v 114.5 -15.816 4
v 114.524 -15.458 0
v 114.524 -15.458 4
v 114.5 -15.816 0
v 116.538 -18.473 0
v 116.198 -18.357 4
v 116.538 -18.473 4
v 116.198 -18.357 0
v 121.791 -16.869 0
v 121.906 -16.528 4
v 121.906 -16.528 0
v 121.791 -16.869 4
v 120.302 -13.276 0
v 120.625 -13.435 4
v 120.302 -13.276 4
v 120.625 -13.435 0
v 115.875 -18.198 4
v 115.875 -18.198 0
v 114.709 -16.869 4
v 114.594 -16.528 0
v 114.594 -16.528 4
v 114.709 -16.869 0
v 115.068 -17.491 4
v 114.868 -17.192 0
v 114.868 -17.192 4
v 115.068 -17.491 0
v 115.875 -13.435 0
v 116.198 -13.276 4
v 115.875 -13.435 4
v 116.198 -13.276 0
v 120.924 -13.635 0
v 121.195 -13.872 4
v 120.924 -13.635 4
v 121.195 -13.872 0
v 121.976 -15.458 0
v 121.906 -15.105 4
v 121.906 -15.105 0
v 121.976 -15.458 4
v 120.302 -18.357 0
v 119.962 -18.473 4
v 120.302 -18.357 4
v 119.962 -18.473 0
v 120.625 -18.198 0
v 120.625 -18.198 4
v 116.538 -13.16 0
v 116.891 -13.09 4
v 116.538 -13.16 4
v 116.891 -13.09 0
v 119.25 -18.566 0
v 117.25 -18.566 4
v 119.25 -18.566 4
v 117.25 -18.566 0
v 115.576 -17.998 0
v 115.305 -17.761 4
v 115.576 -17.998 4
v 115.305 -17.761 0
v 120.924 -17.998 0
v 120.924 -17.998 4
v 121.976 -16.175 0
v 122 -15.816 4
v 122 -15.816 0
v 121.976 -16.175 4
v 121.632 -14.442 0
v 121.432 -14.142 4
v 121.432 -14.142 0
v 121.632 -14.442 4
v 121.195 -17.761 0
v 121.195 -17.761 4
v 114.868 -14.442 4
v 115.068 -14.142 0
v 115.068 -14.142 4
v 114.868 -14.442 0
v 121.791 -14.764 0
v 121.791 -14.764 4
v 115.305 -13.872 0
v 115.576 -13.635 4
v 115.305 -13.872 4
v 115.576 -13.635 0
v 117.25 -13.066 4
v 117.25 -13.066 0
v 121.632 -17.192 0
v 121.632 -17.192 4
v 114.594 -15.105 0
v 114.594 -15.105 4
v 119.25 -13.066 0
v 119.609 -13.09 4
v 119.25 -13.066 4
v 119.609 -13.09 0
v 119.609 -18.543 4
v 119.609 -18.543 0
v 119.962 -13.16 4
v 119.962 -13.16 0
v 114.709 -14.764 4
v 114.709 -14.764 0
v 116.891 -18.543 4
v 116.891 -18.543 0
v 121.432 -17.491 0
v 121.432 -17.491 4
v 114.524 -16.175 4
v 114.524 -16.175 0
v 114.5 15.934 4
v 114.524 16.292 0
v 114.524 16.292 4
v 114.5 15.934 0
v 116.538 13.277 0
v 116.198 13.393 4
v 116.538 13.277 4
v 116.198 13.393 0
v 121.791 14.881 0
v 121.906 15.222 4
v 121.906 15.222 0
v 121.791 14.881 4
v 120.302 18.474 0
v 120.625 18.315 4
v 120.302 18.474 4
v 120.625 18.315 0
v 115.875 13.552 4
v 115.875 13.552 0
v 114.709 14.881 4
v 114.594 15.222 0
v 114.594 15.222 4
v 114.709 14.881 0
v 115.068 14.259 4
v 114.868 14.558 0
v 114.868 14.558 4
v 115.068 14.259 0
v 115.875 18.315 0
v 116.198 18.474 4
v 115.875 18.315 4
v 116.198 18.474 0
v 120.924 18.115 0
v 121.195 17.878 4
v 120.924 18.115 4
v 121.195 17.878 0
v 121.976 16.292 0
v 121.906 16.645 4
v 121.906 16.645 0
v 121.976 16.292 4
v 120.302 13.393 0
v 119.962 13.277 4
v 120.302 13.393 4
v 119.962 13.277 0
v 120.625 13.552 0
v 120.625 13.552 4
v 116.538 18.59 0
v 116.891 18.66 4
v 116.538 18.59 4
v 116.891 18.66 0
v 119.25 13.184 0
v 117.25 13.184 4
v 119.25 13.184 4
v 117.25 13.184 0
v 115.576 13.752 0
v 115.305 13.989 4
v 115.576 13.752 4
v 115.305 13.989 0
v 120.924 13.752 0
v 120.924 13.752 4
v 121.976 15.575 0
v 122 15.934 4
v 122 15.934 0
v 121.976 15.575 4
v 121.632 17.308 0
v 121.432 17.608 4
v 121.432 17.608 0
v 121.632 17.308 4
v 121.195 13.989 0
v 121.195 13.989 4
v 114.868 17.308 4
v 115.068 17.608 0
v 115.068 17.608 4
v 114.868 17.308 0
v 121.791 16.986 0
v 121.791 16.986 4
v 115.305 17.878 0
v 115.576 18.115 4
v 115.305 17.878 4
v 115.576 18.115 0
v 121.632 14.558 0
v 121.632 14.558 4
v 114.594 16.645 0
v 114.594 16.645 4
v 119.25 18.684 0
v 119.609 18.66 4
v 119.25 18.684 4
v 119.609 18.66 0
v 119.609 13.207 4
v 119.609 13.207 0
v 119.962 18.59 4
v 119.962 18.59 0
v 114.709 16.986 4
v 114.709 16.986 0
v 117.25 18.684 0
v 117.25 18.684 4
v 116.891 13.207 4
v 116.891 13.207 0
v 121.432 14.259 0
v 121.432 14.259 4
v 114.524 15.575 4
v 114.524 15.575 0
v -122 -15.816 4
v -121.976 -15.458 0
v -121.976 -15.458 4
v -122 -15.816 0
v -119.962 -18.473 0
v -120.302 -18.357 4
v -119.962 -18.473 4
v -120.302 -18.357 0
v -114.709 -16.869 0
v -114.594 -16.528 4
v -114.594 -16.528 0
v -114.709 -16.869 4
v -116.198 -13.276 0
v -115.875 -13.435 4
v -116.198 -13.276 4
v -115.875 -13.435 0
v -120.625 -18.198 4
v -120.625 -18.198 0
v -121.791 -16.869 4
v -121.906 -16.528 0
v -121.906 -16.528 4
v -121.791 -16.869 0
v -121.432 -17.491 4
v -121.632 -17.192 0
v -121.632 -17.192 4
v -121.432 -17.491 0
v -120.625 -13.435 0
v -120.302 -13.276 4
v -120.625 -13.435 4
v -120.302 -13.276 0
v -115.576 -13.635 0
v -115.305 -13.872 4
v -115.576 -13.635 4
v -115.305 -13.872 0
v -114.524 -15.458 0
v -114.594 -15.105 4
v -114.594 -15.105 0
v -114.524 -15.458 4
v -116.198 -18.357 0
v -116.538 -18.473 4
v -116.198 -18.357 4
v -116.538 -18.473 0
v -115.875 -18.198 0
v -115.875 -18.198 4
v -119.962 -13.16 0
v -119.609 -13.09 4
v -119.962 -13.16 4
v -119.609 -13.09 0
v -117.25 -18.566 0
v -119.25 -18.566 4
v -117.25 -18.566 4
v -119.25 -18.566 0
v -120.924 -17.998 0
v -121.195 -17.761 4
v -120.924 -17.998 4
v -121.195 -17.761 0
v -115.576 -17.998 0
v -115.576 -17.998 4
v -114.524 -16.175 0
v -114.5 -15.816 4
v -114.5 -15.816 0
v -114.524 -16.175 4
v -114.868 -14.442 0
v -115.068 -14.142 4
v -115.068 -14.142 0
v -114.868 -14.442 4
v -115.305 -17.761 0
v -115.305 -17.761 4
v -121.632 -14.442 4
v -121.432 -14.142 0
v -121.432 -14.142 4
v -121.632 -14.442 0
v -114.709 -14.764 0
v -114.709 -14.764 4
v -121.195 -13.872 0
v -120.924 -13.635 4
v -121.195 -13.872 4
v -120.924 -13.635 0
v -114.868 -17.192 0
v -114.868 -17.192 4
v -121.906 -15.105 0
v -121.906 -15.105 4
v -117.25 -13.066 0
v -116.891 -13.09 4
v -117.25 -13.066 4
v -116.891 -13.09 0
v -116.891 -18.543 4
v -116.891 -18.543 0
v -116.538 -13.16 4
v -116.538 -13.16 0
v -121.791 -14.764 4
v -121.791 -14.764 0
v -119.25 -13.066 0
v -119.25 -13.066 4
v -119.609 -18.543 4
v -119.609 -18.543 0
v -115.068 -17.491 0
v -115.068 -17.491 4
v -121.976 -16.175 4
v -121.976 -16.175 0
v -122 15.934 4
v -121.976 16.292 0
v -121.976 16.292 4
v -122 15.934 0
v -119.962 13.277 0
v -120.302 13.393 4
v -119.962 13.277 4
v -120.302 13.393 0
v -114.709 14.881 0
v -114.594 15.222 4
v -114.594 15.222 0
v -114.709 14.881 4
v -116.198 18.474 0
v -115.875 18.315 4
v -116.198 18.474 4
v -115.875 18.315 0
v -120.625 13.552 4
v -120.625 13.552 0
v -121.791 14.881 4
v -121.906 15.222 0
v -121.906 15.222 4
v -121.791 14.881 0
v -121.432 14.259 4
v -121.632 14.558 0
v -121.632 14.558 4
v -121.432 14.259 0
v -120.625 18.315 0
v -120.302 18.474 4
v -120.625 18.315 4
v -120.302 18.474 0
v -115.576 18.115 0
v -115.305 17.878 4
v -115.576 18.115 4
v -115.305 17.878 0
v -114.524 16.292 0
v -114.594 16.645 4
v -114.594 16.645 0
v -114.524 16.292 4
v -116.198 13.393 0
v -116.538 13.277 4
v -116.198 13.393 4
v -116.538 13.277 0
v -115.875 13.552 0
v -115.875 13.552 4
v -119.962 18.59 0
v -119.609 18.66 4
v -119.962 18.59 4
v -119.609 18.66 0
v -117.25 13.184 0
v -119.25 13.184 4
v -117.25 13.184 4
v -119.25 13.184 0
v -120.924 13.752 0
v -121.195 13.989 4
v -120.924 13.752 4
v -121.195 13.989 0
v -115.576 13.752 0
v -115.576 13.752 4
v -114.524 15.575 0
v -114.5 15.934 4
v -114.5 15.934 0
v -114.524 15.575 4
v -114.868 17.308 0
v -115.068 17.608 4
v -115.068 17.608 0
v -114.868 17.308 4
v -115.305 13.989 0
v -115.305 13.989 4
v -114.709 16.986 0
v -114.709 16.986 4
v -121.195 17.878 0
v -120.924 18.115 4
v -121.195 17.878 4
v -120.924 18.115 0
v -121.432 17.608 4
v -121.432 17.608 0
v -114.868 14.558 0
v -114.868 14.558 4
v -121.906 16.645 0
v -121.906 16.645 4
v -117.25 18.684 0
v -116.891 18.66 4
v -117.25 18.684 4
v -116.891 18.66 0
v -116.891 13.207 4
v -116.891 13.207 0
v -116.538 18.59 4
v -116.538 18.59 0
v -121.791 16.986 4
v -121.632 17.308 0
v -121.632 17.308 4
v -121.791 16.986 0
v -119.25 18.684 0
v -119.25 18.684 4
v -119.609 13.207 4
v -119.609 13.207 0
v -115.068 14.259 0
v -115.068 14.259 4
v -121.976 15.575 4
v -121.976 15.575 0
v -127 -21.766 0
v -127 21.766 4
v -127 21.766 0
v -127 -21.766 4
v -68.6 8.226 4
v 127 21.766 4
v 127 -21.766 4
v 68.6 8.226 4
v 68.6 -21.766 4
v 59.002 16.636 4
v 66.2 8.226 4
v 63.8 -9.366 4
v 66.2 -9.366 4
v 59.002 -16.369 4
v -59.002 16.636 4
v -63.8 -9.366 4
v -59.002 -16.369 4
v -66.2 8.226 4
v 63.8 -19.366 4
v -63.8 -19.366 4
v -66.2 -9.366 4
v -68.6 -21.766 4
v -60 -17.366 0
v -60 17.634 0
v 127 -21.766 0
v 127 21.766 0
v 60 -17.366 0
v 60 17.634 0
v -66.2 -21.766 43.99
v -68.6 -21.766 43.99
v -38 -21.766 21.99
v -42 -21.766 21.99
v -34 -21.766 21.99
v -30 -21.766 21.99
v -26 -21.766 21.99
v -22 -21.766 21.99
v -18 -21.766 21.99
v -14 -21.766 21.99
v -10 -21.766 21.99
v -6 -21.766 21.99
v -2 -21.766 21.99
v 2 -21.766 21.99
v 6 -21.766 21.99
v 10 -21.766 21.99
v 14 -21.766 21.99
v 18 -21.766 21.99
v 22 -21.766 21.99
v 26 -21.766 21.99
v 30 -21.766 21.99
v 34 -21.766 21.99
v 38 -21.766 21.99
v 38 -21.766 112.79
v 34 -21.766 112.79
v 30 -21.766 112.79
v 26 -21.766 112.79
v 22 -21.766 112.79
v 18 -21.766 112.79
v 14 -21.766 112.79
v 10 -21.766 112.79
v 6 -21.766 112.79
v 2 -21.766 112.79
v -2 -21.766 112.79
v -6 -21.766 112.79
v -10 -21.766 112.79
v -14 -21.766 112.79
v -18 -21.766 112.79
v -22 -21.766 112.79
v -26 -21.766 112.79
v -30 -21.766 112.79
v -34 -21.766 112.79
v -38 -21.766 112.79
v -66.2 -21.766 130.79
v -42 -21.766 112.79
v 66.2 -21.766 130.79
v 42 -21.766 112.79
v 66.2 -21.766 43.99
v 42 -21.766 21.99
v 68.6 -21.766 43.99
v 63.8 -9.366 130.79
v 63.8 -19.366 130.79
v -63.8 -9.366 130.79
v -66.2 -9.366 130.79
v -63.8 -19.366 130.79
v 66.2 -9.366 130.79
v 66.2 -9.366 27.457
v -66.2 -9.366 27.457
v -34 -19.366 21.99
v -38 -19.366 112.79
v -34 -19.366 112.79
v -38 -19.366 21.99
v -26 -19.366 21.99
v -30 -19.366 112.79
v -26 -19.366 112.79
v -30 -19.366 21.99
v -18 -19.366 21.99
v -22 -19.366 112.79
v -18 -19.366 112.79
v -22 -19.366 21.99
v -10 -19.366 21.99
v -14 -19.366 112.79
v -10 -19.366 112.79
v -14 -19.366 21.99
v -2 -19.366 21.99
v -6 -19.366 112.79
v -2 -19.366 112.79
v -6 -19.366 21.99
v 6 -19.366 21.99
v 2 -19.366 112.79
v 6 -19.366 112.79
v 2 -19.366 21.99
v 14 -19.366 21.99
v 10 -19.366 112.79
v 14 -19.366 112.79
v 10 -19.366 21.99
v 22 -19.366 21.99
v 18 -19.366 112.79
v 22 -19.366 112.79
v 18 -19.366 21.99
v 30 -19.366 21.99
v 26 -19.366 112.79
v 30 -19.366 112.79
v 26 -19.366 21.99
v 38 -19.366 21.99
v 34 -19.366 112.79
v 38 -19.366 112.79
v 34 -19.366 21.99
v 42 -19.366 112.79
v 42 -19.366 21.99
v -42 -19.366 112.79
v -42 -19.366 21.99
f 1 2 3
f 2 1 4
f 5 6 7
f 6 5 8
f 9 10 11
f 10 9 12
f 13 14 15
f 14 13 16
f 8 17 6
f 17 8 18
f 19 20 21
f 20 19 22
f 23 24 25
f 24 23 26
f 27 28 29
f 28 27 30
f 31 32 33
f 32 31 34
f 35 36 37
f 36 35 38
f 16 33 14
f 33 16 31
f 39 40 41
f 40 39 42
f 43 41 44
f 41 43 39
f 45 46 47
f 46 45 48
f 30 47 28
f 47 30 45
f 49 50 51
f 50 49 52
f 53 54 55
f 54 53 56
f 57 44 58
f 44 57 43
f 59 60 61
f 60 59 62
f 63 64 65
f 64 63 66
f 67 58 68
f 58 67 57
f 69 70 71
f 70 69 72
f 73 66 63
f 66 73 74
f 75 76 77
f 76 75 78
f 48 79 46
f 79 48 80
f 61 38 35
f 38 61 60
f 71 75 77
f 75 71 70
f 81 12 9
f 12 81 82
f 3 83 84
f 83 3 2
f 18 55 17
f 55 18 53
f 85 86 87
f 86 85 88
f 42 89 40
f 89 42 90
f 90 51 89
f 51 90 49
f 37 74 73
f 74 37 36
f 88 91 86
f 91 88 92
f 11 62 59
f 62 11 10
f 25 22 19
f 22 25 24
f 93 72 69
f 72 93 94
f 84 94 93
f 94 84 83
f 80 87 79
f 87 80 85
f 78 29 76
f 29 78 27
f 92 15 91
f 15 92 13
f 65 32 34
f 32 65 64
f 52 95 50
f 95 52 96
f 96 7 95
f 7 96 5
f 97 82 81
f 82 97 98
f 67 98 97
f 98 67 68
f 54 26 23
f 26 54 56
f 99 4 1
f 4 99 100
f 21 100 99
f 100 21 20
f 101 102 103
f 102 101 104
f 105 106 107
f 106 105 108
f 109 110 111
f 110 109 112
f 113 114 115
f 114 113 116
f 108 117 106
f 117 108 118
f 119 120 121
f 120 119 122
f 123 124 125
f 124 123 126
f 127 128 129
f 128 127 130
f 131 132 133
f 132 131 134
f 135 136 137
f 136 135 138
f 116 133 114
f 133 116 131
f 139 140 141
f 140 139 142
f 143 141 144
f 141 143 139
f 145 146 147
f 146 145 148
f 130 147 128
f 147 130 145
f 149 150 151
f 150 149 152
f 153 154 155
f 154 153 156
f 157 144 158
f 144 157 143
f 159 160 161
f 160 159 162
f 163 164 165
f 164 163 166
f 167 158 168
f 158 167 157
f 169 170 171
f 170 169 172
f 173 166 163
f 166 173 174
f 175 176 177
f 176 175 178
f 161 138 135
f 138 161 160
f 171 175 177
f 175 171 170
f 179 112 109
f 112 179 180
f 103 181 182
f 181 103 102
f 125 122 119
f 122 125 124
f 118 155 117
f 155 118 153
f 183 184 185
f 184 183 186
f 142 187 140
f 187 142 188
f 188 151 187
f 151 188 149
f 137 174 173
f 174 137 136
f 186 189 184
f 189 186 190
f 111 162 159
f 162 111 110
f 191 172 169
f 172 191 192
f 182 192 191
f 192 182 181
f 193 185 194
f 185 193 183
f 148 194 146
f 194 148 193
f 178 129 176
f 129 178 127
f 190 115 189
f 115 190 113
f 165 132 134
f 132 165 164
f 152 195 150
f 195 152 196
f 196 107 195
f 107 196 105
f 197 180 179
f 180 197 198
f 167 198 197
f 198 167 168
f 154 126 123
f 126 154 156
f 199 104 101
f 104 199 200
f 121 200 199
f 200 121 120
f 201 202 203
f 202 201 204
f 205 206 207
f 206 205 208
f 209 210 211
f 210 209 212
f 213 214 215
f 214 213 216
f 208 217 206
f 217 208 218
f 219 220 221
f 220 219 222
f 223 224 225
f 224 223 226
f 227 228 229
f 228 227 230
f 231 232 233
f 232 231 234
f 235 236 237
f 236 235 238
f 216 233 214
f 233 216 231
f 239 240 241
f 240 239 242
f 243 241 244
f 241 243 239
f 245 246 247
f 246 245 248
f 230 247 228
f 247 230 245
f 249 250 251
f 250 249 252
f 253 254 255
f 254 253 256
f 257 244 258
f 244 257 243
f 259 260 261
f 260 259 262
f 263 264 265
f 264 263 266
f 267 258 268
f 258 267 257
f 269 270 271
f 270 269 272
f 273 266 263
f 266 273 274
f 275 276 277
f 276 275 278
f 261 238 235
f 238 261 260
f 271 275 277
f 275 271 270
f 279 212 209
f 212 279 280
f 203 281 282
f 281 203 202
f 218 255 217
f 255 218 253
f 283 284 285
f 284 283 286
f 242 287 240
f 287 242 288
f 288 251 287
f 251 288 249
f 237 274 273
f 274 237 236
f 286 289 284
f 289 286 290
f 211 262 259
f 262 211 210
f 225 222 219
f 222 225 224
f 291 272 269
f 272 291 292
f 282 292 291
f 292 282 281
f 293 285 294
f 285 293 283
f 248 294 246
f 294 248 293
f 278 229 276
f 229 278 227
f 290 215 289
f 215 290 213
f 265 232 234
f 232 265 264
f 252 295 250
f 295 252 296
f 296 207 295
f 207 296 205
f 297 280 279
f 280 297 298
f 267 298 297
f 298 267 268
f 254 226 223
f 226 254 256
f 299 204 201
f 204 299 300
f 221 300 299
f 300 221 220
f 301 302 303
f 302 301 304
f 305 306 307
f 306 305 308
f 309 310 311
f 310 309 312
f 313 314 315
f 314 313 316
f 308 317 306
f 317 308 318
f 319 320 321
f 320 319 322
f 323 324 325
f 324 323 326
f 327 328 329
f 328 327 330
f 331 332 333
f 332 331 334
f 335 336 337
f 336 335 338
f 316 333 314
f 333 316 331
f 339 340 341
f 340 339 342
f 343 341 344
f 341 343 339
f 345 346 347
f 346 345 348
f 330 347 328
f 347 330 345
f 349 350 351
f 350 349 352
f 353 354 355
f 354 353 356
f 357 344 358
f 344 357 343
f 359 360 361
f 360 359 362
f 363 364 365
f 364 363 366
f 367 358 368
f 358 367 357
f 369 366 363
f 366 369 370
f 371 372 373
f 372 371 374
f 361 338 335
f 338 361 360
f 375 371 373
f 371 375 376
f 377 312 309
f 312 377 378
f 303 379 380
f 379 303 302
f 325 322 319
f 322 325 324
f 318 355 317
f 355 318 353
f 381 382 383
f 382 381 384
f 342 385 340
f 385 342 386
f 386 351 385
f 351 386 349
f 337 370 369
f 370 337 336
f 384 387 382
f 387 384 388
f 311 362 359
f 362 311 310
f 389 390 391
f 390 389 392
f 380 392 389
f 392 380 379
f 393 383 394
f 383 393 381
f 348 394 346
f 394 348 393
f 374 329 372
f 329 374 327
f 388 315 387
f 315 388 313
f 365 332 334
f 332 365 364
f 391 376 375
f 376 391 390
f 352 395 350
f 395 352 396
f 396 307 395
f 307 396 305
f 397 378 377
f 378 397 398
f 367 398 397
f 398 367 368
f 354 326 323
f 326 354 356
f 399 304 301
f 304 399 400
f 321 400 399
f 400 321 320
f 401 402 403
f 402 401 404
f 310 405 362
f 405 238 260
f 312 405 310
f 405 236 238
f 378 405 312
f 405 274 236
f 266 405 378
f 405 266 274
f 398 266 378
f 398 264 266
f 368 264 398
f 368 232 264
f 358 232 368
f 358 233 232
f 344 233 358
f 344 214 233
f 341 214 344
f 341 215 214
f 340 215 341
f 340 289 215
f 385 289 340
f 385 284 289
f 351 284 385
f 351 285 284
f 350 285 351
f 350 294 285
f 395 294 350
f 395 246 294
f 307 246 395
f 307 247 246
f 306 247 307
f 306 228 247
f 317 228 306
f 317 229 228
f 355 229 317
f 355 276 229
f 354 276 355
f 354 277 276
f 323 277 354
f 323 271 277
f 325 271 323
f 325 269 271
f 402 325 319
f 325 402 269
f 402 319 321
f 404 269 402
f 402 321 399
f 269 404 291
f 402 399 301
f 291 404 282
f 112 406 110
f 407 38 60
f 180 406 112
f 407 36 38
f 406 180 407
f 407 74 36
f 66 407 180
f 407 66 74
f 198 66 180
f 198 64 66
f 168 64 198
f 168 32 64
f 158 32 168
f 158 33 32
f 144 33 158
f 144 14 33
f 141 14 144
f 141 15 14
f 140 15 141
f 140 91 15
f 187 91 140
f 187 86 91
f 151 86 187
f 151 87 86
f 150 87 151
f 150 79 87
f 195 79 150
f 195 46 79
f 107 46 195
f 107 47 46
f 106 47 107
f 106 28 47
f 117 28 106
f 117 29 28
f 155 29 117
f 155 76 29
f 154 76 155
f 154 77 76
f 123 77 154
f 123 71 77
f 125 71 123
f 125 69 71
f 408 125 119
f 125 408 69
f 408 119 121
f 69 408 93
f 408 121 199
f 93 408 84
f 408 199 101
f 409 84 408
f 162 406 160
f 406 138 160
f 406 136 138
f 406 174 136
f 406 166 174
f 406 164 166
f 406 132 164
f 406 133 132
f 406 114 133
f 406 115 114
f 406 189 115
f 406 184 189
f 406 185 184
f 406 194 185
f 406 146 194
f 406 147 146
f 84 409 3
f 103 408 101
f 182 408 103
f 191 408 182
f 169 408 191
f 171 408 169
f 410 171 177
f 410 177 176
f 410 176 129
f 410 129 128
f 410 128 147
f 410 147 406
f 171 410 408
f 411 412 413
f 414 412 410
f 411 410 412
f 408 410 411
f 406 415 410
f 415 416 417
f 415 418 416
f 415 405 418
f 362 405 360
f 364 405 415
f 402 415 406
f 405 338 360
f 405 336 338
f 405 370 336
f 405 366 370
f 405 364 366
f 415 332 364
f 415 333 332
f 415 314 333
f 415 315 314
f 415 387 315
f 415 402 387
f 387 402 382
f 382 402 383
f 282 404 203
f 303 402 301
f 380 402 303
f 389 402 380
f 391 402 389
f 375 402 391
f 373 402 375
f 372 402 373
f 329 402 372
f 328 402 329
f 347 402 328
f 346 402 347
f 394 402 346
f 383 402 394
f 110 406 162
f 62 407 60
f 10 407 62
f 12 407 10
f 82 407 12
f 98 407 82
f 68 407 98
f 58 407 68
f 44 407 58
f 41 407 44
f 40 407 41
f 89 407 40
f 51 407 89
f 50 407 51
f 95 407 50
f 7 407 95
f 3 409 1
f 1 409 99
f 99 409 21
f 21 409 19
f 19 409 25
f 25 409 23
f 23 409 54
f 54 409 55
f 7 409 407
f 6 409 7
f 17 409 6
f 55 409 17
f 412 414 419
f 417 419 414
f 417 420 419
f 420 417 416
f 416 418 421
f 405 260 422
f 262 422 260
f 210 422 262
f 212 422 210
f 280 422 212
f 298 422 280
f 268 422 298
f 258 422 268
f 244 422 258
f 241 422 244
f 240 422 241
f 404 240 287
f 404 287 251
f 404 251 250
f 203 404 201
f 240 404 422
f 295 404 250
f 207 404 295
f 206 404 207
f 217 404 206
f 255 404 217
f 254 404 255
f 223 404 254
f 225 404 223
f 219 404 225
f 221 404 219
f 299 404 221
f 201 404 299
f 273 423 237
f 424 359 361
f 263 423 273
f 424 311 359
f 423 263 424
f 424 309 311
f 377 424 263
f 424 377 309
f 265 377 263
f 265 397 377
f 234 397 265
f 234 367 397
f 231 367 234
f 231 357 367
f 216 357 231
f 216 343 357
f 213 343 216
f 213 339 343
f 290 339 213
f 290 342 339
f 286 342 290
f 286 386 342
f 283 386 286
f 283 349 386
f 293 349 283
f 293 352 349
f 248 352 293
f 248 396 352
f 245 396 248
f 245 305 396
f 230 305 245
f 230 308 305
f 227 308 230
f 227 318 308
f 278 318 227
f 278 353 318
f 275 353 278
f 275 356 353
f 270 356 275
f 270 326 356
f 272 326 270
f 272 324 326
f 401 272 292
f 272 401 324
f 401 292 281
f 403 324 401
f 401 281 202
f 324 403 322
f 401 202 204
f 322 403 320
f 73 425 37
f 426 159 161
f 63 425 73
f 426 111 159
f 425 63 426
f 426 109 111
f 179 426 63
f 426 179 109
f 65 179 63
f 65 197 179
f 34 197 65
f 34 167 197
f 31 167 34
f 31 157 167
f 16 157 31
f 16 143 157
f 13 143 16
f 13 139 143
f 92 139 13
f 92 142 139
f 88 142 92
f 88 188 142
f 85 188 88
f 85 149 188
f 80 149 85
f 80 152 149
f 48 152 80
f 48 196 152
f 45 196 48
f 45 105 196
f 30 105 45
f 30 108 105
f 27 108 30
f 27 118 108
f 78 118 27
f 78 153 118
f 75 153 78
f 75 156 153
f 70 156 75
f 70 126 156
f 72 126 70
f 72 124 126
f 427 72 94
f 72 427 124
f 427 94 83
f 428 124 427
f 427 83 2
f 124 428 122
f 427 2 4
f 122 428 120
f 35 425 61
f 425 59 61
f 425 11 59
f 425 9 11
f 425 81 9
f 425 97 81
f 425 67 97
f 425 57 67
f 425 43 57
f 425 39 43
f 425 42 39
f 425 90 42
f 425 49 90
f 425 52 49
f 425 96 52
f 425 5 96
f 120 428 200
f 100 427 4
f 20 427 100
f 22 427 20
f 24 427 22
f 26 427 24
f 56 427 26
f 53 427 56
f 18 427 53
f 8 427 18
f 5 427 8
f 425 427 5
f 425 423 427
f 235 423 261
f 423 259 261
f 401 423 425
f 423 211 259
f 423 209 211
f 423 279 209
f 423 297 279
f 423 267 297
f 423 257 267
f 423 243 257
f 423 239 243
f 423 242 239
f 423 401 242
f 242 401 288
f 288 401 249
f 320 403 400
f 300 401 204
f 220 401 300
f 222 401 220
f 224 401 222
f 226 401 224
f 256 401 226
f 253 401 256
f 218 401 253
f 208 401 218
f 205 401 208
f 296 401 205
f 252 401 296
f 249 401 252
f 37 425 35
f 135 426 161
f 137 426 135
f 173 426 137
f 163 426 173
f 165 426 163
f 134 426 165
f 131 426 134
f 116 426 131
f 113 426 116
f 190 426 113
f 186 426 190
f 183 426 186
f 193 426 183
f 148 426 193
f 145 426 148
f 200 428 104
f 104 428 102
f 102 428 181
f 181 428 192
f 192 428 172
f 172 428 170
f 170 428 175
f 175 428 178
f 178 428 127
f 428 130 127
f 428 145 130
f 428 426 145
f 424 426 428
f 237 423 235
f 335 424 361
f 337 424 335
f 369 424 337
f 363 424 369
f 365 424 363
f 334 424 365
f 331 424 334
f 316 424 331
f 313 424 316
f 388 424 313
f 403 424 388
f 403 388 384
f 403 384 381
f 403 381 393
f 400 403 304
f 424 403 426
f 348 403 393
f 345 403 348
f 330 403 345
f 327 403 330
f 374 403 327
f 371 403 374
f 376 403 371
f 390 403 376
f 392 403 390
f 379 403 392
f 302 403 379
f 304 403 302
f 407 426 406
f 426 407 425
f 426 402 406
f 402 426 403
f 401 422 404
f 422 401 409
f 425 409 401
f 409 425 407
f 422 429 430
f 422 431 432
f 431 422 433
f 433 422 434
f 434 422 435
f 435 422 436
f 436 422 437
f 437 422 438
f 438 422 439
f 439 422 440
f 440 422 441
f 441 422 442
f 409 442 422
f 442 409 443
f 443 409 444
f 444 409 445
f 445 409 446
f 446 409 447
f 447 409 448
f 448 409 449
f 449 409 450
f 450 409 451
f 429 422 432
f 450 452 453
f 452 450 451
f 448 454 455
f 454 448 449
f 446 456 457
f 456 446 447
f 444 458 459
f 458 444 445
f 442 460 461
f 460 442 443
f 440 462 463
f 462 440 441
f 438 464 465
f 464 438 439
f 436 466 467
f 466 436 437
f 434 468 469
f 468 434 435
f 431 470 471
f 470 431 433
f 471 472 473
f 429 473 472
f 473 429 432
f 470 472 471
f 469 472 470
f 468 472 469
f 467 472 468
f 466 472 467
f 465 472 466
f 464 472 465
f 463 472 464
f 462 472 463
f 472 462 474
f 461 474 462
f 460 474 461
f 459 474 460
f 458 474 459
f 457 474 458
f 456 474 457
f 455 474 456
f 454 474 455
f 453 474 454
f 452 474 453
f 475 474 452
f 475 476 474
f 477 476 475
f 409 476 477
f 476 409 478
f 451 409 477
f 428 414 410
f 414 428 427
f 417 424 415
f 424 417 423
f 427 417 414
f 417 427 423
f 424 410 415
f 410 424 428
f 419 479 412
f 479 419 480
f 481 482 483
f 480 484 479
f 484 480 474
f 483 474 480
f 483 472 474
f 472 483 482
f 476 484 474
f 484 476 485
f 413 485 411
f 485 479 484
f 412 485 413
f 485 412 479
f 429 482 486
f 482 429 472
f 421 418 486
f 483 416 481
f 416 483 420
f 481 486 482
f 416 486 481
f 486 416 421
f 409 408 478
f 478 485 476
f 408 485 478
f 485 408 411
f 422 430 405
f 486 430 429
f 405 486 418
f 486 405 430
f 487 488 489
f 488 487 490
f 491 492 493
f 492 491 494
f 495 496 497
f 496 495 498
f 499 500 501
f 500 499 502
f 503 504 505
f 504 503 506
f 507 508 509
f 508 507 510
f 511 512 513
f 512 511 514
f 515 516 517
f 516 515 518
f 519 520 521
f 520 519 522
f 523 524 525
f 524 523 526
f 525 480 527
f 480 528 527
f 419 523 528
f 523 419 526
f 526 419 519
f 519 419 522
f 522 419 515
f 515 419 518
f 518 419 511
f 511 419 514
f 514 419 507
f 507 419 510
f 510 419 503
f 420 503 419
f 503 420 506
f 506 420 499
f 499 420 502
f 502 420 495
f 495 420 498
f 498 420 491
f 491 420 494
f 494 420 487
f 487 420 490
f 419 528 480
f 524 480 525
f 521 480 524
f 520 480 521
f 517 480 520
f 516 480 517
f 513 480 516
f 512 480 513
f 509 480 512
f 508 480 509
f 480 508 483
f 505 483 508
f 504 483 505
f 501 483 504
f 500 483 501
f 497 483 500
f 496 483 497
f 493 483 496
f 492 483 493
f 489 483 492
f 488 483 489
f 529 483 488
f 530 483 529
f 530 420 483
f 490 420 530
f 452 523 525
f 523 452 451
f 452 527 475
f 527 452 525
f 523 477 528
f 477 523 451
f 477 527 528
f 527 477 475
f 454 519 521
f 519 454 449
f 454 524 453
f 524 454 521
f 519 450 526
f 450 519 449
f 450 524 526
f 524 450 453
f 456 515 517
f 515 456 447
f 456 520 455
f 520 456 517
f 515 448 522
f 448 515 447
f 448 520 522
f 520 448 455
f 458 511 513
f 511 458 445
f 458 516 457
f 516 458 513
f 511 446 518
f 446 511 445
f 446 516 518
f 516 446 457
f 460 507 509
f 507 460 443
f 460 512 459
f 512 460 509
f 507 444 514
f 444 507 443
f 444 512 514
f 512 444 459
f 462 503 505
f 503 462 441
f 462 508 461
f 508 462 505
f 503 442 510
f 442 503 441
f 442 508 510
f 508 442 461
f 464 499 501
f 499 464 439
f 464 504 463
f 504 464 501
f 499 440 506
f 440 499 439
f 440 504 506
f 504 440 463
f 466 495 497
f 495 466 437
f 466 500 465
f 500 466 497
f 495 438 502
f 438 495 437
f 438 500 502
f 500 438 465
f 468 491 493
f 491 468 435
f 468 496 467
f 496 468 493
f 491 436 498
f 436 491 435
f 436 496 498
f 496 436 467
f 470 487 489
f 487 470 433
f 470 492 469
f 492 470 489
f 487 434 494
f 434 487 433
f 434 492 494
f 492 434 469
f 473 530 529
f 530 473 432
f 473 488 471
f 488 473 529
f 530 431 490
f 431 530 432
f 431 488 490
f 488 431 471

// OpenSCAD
// Beelink EQ14 1U shelf for a 10-inch KWS Rack v2.
//
// A 1U faceplate with a window onto the EQ14's front I/O (power button,
// USB-A, USB-C, audio), and a cantilevered tray behind it: side rails to
// locate the box, floor vents, and gussets tying the tray to the
// faceplate. The rear stop is optional and off, so the rear ports stay clear. The EQ14 slides in from the back until its face meets
// the plate. Remove its rubber feet first.
//
// Print face-down (faceplate on the bed); the tray rises vertically and
// needs no supports. PETG.
//
// Front-view coordinates: x right, y up, z = depth into the rack.

$fn = 48;

// --- rack standard (EIA-310 10-inch), matches rack_faceplate.scad ---
rack_u          = 44.333;         // KWS legs: measured pitch per the 9U build sheet (EIA nominal 44.45)
panel_h         = rack_u - 0.8;   // 43.65
panel_w         = 254;
rail_opening    = 222.25;
ear_hole_pitch  = 236.5;
ear_hole_d      = 5.5;            // M5 clearance
ear_hole_slot   = 2;
hole_y_in_u     = [6.35, 38.1];   // outer holes of the U (0.25", 1.5")

// --- plate ---
plate_t         = 4;

// --- EQ14 (feet removed; manufacturer: 126 x 126 x 39 without feet) ---
dev_w           = 126;
dev_d           = 126;
dev_h           = 39;
dev_clear       = 0.8;            // per side, slip fit

// --- tray ---
floor_t         = 2.4;
rail_h          = 10;             // side rails locate the box
rail_t          = 2.4;
// Rear stop: off. A full-width lip covers the bottom of the rear ports
// (found on the first print). The faceplate stops the box going forward,
// and the rails hold it side to side.
rear_stop       = false;
stop_h          = 12;
stop_t          = 2.4;
gusset_l        = 40;             // along the tray
gusset_h        = 30;             // up the faceplate
vent_slot_w     = 4;
vent_slot_pitch = 8;
vent_margin     = 18;

// --- front window onto the I/O ---
// Inset from the box edges so the plate overlaps the EQ14's rounded face
// and holds it; ports sit mid-height on the front.
window_inset_x  = 4;
window_inset_y  = 3;

// ---------------------------------------------------------------------

bay_w           = dev_w + 2 * dev_clear;
bay_d           = dev_d + dev_clear;
floor_y         = -panel_h / 2;                  // tray floor underside
dev_bottom_y    = floor_y + floor_t;
dev_center_y    = dev_bottom_y + dev_h / 2;
window_w        = dev_w - 2 * window_inset_x;
window_h        = dev_h - 2 * window_inset_y;

module ear_holes() {
    for (x = [-1, 1], hy = hole_y_in_u)
        translate([x * ear_hole_pitch / 2, -rack_u / 2 + hy, -1])
            hull() for (dx = [-ear_hole_slot / 2, ear_hole_slot / 2])
                translate([dx, 0, 0]) cylinder(d = ear_hole_d, h = plate_t + 2);
}

module faceplate() {
    difference() {
        translate([-panel_w / 2, -panel_h / 2, 0])
            cube([panel_w, panel_h, plate_t]);
        ear_holes();
        // I/O window with a chamfered front edge
        translate([0, dev_center_y, 0])
            hull() {
                translate([-window_w / 2, -window_h / 2, -0.01])
                    cube([window_w, window_h, plate_t + 0.02]);
                translate([-window_w / 2 - 1, -window_h / 2 - 1, -0.01])
                    cube([window_w + 2, window_h + 2, 0.01]);
            }
    }
}

module tray() {
    z0 = plate_t - 0.01;
    outer_w = bay_w + 2 * rail_t;
    difference() {
        union() {
            // floor
            translate([-outer_w / 2, floor_y, z0])
                cube([outer_w, floor_t, bay_d + (rear_stop ? stop_t : 0)]);
            // side rails
            for (s = [-1, 1])
                translate([s * (bay_w / 2 + rail_t / 2) - rail_t / 2, floor_y, z0])
                    cube([rail_t, floor_t + rail_h, bay_d + (rear_stop ? stop_t : 0)]);
            if (rear_stop)
            translate([-outer_w / 2, floor_y, z0 + bay_d])
                cube([outer_w, floor_t + stop_h, stop_t]);
            // gussets: triangles in the y-z plane, outboard of the rails
            for (s = [-1, 1])
                translate([s * (outer_w / 2 + rail_t / 2) - rail_t / 2, floor_y, z0])
                    rotate([90, 0, 90])
                        linear_extrude(rail_t)
                            polygon([[0, 0], [gusset_h, 0], [0, gusset_l]]);
        }
        // floor vents: slots front-to-back, clear of rails and ends
        n = floor((bay_w - 2 * vent_margin) / vent_slot_pitch);
        for (i = [0 : n - 1])
            translate([-(n - 1) * vent_slot_pitch / 2 + i * vent_slot_pitch - vent_slot_w / 2,
                       floor_y - 1, z0 + vent_margin])
                cube([vent_slot_w, floor_t + 2, bay_d - 2 * vent_margin]);
    }
}

// Front view -> model space (see rack_faceplate.scad)
mirror([1, 0, 0]) union() { faceplate(); tray(); }

// Sanity checks
assert(dev_bottom_y + dev_h <= panel_h / 2, "EQ14 taller than the 1U opening");
assert(bay_w + 2 * rail_t + 2 * rail_t <= rail_opening, "tray + gussets wider than the rails");
